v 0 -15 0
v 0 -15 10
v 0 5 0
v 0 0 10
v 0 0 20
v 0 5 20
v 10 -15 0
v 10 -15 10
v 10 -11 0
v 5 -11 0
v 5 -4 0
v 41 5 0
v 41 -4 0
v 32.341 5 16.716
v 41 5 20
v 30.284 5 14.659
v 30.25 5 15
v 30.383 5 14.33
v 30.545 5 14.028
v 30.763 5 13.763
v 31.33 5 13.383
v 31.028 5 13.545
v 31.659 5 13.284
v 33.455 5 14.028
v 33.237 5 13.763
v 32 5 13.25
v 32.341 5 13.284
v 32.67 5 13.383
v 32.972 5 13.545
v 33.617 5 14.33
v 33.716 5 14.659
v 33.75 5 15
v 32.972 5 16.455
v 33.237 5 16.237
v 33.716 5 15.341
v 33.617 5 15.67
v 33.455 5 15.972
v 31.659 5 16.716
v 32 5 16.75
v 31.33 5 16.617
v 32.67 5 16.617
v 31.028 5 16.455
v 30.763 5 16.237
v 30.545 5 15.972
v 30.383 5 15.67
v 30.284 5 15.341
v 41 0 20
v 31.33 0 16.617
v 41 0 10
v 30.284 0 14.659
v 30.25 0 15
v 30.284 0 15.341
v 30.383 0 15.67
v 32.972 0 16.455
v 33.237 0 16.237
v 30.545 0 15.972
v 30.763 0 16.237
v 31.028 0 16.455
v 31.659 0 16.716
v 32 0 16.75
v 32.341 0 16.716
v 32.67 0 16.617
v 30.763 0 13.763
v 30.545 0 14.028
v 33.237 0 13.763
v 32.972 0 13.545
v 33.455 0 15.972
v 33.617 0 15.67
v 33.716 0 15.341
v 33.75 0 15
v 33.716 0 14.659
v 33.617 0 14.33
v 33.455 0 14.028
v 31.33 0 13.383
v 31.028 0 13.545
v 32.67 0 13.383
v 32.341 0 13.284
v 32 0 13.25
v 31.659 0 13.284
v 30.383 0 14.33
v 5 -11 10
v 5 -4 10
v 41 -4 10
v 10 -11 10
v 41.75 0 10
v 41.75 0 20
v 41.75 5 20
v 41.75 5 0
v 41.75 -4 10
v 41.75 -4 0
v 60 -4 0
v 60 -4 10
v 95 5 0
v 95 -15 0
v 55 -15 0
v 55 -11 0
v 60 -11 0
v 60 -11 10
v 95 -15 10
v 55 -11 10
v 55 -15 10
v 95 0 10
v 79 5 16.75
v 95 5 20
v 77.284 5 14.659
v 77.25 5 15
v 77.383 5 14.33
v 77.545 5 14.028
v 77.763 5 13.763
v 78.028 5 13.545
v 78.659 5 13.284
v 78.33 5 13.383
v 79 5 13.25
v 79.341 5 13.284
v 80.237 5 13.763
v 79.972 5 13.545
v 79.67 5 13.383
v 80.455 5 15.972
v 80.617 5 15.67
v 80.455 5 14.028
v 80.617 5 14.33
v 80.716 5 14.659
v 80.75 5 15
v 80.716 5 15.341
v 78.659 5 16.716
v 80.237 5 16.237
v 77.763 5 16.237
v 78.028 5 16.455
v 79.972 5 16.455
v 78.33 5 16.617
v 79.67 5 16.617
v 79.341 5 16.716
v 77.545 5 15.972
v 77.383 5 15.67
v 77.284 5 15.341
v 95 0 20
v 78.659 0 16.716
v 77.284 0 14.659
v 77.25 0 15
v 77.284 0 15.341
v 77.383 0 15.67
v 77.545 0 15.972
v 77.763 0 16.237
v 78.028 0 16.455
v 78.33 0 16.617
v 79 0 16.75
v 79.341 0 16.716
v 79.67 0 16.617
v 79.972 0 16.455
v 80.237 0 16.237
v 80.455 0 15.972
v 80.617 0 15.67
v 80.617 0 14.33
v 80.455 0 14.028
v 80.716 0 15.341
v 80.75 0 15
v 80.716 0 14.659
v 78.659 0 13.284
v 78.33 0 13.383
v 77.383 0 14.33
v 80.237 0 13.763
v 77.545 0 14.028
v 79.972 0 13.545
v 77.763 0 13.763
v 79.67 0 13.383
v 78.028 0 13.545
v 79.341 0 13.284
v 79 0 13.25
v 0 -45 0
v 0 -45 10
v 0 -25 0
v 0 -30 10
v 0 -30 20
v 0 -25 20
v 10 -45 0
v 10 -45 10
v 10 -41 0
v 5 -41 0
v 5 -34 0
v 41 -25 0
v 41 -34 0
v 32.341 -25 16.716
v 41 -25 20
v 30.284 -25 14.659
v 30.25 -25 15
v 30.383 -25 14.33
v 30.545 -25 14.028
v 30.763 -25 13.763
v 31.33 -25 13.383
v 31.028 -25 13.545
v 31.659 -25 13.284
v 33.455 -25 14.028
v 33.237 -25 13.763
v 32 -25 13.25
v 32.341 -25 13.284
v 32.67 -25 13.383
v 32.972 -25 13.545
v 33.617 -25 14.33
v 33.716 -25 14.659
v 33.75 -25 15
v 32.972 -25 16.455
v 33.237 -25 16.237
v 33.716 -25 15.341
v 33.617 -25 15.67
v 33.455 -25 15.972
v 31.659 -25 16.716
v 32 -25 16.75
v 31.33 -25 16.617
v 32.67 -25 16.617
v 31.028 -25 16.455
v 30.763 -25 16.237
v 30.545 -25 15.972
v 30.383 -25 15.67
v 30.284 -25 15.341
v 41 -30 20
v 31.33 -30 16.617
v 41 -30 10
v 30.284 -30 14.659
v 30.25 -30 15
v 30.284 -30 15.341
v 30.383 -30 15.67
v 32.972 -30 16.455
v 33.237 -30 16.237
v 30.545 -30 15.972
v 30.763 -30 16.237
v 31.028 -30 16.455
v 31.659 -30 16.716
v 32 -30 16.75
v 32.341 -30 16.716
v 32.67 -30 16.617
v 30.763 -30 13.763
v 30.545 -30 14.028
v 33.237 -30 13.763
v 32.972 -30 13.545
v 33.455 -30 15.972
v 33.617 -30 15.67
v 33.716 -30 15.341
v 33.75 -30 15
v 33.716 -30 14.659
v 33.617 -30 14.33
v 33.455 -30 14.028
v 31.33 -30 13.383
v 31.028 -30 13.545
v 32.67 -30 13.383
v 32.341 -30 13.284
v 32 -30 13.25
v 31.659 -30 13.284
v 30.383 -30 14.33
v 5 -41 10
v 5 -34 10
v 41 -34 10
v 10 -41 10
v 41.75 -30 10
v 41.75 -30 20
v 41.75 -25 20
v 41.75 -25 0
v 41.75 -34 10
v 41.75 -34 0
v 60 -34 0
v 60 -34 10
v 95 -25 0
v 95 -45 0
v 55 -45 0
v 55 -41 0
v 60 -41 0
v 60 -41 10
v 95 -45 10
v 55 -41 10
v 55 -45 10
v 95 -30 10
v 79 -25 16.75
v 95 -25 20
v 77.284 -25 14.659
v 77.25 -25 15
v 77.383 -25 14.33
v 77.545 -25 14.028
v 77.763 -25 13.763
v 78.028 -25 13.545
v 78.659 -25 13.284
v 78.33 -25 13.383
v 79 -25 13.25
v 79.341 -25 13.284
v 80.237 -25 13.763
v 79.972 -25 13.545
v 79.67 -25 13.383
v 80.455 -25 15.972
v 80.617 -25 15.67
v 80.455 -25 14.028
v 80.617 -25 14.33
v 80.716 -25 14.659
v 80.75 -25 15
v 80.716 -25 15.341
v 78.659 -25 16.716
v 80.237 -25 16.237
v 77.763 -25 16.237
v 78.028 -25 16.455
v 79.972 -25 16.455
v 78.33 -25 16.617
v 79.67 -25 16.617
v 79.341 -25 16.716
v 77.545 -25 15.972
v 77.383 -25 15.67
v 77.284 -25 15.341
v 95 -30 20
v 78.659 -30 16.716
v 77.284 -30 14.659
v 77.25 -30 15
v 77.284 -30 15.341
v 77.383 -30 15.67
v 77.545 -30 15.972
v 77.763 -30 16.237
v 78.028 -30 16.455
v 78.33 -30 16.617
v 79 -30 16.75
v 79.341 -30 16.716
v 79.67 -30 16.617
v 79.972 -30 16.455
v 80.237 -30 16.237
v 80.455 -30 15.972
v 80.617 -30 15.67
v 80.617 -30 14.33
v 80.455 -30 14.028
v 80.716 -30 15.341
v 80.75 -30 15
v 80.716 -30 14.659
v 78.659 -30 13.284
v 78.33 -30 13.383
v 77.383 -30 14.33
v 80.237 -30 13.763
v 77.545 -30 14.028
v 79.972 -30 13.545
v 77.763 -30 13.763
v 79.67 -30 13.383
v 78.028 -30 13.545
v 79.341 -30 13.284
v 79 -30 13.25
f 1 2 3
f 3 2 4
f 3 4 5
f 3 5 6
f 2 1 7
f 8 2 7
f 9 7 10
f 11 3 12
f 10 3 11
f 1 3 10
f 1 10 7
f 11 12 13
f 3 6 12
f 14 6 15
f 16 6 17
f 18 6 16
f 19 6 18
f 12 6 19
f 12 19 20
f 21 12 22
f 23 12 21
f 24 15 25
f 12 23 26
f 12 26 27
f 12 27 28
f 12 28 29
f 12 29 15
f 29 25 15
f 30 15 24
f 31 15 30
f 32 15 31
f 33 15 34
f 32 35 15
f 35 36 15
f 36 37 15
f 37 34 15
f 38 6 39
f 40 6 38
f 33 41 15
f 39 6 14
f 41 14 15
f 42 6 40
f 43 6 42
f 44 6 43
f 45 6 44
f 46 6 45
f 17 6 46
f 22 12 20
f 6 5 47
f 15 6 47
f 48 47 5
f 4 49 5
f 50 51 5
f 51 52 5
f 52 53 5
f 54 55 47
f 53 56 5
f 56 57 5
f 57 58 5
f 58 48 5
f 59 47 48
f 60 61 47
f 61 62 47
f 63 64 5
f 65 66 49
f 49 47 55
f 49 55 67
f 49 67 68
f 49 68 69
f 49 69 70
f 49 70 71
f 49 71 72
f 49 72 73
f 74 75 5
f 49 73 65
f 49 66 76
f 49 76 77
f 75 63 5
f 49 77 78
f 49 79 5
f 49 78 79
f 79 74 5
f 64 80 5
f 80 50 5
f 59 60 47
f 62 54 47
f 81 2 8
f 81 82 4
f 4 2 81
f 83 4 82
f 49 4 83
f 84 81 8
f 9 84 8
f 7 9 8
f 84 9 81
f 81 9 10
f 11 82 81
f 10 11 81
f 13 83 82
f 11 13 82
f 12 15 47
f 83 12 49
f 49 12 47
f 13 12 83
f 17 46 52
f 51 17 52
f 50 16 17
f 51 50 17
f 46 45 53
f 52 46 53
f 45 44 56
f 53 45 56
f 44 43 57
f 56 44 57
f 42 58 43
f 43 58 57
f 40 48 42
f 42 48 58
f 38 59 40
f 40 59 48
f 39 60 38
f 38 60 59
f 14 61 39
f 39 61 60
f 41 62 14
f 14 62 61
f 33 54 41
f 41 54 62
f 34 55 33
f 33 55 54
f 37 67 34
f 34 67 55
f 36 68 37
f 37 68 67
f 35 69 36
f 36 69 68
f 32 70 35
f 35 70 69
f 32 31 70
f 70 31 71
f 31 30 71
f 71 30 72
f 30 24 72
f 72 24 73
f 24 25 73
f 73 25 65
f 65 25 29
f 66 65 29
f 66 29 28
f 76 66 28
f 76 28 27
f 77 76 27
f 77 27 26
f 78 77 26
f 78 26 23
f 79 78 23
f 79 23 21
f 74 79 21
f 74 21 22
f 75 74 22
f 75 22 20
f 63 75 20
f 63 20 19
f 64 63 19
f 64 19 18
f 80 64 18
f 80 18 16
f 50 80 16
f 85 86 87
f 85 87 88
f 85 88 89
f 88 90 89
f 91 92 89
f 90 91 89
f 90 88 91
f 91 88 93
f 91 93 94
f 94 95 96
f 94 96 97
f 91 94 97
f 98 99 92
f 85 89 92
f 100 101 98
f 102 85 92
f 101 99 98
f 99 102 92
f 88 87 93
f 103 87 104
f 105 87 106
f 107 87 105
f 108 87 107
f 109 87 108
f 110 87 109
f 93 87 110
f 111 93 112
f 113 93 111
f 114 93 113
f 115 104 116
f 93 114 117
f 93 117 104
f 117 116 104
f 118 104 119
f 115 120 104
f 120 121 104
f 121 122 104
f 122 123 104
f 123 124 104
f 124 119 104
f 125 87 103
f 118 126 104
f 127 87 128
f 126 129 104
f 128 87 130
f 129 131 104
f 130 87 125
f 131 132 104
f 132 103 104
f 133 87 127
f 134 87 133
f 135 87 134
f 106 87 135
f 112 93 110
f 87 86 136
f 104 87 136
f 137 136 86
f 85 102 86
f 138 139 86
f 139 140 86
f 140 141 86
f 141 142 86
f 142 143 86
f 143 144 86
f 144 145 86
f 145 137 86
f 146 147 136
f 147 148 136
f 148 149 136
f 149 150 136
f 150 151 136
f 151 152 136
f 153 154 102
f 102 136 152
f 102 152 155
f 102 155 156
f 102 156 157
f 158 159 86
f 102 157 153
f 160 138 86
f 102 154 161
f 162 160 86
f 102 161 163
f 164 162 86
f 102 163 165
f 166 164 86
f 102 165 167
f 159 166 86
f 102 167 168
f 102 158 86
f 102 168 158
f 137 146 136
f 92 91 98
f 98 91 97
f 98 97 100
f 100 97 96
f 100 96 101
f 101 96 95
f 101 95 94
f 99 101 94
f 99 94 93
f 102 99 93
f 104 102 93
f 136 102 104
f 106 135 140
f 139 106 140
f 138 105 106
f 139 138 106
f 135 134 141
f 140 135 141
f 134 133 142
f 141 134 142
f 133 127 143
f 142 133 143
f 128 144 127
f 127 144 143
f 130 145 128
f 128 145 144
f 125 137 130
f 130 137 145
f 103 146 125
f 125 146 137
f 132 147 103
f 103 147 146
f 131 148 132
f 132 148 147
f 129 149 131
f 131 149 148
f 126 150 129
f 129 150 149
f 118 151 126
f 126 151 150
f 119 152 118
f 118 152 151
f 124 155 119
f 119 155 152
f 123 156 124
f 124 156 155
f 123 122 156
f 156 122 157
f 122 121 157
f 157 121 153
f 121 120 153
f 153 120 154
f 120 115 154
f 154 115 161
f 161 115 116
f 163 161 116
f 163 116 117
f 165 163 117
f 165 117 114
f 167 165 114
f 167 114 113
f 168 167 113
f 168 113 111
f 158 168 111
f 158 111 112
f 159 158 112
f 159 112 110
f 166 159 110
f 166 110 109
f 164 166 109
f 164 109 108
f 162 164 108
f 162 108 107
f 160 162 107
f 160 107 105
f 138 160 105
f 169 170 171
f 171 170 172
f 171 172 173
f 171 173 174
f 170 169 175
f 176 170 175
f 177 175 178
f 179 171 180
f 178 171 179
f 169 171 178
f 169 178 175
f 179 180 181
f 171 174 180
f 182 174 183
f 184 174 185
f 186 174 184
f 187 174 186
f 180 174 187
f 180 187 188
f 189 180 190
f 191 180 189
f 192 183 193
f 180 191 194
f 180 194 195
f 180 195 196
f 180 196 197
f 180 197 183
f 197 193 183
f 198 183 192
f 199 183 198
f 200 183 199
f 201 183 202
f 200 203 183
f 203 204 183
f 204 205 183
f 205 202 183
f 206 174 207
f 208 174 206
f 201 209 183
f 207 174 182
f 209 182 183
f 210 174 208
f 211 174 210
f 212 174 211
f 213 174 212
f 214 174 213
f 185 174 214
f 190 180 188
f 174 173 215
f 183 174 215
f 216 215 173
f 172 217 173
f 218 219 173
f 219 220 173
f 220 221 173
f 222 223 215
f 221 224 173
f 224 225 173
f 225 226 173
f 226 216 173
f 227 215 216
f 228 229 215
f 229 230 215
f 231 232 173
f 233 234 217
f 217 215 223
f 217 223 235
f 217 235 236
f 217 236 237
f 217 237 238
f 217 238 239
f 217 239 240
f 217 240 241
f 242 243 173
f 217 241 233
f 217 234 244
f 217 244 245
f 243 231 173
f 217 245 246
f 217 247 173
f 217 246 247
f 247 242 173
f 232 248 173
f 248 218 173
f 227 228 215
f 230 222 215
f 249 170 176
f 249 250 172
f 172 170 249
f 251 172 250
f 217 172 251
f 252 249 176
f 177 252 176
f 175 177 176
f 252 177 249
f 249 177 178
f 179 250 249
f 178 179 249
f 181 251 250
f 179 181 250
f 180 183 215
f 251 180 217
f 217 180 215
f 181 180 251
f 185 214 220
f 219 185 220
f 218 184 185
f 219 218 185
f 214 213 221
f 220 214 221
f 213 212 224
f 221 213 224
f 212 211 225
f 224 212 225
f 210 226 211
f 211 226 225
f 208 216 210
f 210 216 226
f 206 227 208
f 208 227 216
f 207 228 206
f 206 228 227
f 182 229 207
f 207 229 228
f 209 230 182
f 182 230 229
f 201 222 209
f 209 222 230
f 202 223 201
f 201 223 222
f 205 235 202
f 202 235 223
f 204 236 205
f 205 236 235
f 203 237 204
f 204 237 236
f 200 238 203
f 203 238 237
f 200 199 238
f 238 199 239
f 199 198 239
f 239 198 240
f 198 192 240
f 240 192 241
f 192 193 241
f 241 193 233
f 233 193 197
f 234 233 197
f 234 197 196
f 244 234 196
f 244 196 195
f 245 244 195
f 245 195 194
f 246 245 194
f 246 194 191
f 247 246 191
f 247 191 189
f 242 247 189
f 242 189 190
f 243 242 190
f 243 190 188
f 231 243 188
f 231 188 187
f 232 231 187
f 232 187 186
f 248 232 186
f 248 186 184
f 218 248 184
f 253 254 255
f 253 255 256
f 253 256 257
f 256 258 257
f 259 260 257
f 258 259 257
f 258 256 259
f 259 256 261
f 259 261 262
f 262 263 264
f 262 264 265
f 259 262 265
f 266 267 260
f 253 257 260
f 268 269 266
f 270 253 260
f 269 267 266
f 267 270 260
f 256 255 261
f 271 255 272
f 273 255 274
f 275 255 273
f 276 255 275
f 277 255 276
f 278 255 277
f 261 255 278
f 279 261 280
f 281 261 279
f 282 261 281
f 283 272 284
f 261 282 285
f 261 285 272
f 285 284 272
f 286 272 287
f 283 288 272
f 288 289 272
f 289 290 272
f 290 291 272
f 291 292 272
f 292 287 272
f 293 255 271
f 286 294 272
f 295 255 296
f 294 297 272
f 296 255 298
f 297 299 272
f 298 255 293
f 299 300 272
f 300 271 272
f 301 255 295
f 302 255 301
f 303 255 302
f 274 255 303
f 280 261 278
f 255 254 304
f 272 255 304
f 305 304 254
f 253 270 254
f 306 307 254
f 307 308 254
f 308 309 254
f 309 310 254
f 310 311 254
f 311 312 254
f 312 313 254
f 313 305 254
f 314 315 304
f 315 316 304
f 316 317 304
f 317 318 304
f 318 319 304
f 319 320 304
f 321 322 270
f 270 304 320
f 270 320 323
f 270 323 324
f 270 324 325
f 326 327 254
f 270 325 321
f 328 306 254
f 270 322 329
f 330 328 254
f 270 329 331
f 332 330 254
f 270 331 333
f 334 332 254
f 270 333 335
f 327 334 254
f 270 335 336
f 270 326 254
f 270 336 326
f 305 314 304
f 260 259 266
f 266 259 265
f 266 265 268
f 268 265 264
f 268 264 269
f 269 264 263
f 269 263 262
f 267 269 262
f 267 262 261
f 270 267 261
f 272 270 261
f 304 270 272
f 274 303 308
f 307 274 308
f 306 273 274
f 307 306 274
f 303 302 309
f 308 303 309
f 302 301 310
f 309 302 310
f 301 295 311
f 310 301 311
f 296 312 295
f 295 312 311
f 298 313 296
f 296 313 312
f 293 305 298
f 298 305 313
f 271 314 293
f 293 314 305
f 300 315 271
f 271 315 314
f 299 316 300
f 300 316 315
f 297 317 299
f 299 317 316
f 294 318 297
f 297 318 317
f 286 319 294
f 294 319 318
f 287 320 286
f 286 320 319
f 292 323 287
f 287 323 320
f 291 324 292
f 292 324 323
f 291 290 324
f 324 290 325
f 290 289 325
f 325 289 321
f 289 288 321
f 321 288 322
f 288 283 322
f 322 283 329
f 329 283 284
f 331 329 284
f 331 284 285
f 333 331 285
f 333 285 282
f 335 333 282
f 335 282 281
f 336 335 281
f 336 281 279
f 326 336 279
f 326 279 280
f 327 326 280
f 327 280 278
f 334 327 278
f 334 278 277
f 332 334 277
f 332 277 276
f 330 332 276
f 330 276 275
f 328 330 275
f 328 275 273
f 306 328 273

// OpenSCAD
// This is a set of clamps to mount a typical 30A PSU to the Prusa i3.
// I remixed this because I couldn't find anything would fit my PSU
// behind the right support bar on my variant of the i3.
//
// Vitamins required:
//  (4) m3x10mm
//
//  To assemble, orient the PSU with terminals facing down. 
//  Attach the clamps on the left side of the PSU and slide into
//  aluminum frame.  Finally, attach the clamps on the right side.
//
//  Remixed by Joseph Breihan, josephbreihan@gmail.com, from
//  http://www.thingiverse.com/thing:396650,
//  which was made by: drcharlesbell@gmail.com
//
//  Enjoy!

m3_diameter = 3.75;
m3_nut_diameter = 6.3;

module psu_clamp(thickness=5) {
  difference() {
    union() {
      // PSU side
      cube([95,thickness,20]);
      translate([0,-15,0]) cube([95,15,10]);
    }
    // cutout for frame
    translate([5,-11,0]) cube([55,7,10]);
    translate([10,-21,0]) cube([45,10,10]);
    // hole for PSU mount
    translate([32,7,15]) rotate([90,0,0]) cylinder(10,1.75,1.75,$fn=32);
    translate([79,7,15]) rotate([90,0,0]) cylinder(10,1.75,1.75,$fn=32);
    translate([41,-10,0]) cube([0.75,40,20]);
  }
}

psu_clamp();  // bottom clamp
translate([0,-30,0]) psu_clamp(); // top clamp
